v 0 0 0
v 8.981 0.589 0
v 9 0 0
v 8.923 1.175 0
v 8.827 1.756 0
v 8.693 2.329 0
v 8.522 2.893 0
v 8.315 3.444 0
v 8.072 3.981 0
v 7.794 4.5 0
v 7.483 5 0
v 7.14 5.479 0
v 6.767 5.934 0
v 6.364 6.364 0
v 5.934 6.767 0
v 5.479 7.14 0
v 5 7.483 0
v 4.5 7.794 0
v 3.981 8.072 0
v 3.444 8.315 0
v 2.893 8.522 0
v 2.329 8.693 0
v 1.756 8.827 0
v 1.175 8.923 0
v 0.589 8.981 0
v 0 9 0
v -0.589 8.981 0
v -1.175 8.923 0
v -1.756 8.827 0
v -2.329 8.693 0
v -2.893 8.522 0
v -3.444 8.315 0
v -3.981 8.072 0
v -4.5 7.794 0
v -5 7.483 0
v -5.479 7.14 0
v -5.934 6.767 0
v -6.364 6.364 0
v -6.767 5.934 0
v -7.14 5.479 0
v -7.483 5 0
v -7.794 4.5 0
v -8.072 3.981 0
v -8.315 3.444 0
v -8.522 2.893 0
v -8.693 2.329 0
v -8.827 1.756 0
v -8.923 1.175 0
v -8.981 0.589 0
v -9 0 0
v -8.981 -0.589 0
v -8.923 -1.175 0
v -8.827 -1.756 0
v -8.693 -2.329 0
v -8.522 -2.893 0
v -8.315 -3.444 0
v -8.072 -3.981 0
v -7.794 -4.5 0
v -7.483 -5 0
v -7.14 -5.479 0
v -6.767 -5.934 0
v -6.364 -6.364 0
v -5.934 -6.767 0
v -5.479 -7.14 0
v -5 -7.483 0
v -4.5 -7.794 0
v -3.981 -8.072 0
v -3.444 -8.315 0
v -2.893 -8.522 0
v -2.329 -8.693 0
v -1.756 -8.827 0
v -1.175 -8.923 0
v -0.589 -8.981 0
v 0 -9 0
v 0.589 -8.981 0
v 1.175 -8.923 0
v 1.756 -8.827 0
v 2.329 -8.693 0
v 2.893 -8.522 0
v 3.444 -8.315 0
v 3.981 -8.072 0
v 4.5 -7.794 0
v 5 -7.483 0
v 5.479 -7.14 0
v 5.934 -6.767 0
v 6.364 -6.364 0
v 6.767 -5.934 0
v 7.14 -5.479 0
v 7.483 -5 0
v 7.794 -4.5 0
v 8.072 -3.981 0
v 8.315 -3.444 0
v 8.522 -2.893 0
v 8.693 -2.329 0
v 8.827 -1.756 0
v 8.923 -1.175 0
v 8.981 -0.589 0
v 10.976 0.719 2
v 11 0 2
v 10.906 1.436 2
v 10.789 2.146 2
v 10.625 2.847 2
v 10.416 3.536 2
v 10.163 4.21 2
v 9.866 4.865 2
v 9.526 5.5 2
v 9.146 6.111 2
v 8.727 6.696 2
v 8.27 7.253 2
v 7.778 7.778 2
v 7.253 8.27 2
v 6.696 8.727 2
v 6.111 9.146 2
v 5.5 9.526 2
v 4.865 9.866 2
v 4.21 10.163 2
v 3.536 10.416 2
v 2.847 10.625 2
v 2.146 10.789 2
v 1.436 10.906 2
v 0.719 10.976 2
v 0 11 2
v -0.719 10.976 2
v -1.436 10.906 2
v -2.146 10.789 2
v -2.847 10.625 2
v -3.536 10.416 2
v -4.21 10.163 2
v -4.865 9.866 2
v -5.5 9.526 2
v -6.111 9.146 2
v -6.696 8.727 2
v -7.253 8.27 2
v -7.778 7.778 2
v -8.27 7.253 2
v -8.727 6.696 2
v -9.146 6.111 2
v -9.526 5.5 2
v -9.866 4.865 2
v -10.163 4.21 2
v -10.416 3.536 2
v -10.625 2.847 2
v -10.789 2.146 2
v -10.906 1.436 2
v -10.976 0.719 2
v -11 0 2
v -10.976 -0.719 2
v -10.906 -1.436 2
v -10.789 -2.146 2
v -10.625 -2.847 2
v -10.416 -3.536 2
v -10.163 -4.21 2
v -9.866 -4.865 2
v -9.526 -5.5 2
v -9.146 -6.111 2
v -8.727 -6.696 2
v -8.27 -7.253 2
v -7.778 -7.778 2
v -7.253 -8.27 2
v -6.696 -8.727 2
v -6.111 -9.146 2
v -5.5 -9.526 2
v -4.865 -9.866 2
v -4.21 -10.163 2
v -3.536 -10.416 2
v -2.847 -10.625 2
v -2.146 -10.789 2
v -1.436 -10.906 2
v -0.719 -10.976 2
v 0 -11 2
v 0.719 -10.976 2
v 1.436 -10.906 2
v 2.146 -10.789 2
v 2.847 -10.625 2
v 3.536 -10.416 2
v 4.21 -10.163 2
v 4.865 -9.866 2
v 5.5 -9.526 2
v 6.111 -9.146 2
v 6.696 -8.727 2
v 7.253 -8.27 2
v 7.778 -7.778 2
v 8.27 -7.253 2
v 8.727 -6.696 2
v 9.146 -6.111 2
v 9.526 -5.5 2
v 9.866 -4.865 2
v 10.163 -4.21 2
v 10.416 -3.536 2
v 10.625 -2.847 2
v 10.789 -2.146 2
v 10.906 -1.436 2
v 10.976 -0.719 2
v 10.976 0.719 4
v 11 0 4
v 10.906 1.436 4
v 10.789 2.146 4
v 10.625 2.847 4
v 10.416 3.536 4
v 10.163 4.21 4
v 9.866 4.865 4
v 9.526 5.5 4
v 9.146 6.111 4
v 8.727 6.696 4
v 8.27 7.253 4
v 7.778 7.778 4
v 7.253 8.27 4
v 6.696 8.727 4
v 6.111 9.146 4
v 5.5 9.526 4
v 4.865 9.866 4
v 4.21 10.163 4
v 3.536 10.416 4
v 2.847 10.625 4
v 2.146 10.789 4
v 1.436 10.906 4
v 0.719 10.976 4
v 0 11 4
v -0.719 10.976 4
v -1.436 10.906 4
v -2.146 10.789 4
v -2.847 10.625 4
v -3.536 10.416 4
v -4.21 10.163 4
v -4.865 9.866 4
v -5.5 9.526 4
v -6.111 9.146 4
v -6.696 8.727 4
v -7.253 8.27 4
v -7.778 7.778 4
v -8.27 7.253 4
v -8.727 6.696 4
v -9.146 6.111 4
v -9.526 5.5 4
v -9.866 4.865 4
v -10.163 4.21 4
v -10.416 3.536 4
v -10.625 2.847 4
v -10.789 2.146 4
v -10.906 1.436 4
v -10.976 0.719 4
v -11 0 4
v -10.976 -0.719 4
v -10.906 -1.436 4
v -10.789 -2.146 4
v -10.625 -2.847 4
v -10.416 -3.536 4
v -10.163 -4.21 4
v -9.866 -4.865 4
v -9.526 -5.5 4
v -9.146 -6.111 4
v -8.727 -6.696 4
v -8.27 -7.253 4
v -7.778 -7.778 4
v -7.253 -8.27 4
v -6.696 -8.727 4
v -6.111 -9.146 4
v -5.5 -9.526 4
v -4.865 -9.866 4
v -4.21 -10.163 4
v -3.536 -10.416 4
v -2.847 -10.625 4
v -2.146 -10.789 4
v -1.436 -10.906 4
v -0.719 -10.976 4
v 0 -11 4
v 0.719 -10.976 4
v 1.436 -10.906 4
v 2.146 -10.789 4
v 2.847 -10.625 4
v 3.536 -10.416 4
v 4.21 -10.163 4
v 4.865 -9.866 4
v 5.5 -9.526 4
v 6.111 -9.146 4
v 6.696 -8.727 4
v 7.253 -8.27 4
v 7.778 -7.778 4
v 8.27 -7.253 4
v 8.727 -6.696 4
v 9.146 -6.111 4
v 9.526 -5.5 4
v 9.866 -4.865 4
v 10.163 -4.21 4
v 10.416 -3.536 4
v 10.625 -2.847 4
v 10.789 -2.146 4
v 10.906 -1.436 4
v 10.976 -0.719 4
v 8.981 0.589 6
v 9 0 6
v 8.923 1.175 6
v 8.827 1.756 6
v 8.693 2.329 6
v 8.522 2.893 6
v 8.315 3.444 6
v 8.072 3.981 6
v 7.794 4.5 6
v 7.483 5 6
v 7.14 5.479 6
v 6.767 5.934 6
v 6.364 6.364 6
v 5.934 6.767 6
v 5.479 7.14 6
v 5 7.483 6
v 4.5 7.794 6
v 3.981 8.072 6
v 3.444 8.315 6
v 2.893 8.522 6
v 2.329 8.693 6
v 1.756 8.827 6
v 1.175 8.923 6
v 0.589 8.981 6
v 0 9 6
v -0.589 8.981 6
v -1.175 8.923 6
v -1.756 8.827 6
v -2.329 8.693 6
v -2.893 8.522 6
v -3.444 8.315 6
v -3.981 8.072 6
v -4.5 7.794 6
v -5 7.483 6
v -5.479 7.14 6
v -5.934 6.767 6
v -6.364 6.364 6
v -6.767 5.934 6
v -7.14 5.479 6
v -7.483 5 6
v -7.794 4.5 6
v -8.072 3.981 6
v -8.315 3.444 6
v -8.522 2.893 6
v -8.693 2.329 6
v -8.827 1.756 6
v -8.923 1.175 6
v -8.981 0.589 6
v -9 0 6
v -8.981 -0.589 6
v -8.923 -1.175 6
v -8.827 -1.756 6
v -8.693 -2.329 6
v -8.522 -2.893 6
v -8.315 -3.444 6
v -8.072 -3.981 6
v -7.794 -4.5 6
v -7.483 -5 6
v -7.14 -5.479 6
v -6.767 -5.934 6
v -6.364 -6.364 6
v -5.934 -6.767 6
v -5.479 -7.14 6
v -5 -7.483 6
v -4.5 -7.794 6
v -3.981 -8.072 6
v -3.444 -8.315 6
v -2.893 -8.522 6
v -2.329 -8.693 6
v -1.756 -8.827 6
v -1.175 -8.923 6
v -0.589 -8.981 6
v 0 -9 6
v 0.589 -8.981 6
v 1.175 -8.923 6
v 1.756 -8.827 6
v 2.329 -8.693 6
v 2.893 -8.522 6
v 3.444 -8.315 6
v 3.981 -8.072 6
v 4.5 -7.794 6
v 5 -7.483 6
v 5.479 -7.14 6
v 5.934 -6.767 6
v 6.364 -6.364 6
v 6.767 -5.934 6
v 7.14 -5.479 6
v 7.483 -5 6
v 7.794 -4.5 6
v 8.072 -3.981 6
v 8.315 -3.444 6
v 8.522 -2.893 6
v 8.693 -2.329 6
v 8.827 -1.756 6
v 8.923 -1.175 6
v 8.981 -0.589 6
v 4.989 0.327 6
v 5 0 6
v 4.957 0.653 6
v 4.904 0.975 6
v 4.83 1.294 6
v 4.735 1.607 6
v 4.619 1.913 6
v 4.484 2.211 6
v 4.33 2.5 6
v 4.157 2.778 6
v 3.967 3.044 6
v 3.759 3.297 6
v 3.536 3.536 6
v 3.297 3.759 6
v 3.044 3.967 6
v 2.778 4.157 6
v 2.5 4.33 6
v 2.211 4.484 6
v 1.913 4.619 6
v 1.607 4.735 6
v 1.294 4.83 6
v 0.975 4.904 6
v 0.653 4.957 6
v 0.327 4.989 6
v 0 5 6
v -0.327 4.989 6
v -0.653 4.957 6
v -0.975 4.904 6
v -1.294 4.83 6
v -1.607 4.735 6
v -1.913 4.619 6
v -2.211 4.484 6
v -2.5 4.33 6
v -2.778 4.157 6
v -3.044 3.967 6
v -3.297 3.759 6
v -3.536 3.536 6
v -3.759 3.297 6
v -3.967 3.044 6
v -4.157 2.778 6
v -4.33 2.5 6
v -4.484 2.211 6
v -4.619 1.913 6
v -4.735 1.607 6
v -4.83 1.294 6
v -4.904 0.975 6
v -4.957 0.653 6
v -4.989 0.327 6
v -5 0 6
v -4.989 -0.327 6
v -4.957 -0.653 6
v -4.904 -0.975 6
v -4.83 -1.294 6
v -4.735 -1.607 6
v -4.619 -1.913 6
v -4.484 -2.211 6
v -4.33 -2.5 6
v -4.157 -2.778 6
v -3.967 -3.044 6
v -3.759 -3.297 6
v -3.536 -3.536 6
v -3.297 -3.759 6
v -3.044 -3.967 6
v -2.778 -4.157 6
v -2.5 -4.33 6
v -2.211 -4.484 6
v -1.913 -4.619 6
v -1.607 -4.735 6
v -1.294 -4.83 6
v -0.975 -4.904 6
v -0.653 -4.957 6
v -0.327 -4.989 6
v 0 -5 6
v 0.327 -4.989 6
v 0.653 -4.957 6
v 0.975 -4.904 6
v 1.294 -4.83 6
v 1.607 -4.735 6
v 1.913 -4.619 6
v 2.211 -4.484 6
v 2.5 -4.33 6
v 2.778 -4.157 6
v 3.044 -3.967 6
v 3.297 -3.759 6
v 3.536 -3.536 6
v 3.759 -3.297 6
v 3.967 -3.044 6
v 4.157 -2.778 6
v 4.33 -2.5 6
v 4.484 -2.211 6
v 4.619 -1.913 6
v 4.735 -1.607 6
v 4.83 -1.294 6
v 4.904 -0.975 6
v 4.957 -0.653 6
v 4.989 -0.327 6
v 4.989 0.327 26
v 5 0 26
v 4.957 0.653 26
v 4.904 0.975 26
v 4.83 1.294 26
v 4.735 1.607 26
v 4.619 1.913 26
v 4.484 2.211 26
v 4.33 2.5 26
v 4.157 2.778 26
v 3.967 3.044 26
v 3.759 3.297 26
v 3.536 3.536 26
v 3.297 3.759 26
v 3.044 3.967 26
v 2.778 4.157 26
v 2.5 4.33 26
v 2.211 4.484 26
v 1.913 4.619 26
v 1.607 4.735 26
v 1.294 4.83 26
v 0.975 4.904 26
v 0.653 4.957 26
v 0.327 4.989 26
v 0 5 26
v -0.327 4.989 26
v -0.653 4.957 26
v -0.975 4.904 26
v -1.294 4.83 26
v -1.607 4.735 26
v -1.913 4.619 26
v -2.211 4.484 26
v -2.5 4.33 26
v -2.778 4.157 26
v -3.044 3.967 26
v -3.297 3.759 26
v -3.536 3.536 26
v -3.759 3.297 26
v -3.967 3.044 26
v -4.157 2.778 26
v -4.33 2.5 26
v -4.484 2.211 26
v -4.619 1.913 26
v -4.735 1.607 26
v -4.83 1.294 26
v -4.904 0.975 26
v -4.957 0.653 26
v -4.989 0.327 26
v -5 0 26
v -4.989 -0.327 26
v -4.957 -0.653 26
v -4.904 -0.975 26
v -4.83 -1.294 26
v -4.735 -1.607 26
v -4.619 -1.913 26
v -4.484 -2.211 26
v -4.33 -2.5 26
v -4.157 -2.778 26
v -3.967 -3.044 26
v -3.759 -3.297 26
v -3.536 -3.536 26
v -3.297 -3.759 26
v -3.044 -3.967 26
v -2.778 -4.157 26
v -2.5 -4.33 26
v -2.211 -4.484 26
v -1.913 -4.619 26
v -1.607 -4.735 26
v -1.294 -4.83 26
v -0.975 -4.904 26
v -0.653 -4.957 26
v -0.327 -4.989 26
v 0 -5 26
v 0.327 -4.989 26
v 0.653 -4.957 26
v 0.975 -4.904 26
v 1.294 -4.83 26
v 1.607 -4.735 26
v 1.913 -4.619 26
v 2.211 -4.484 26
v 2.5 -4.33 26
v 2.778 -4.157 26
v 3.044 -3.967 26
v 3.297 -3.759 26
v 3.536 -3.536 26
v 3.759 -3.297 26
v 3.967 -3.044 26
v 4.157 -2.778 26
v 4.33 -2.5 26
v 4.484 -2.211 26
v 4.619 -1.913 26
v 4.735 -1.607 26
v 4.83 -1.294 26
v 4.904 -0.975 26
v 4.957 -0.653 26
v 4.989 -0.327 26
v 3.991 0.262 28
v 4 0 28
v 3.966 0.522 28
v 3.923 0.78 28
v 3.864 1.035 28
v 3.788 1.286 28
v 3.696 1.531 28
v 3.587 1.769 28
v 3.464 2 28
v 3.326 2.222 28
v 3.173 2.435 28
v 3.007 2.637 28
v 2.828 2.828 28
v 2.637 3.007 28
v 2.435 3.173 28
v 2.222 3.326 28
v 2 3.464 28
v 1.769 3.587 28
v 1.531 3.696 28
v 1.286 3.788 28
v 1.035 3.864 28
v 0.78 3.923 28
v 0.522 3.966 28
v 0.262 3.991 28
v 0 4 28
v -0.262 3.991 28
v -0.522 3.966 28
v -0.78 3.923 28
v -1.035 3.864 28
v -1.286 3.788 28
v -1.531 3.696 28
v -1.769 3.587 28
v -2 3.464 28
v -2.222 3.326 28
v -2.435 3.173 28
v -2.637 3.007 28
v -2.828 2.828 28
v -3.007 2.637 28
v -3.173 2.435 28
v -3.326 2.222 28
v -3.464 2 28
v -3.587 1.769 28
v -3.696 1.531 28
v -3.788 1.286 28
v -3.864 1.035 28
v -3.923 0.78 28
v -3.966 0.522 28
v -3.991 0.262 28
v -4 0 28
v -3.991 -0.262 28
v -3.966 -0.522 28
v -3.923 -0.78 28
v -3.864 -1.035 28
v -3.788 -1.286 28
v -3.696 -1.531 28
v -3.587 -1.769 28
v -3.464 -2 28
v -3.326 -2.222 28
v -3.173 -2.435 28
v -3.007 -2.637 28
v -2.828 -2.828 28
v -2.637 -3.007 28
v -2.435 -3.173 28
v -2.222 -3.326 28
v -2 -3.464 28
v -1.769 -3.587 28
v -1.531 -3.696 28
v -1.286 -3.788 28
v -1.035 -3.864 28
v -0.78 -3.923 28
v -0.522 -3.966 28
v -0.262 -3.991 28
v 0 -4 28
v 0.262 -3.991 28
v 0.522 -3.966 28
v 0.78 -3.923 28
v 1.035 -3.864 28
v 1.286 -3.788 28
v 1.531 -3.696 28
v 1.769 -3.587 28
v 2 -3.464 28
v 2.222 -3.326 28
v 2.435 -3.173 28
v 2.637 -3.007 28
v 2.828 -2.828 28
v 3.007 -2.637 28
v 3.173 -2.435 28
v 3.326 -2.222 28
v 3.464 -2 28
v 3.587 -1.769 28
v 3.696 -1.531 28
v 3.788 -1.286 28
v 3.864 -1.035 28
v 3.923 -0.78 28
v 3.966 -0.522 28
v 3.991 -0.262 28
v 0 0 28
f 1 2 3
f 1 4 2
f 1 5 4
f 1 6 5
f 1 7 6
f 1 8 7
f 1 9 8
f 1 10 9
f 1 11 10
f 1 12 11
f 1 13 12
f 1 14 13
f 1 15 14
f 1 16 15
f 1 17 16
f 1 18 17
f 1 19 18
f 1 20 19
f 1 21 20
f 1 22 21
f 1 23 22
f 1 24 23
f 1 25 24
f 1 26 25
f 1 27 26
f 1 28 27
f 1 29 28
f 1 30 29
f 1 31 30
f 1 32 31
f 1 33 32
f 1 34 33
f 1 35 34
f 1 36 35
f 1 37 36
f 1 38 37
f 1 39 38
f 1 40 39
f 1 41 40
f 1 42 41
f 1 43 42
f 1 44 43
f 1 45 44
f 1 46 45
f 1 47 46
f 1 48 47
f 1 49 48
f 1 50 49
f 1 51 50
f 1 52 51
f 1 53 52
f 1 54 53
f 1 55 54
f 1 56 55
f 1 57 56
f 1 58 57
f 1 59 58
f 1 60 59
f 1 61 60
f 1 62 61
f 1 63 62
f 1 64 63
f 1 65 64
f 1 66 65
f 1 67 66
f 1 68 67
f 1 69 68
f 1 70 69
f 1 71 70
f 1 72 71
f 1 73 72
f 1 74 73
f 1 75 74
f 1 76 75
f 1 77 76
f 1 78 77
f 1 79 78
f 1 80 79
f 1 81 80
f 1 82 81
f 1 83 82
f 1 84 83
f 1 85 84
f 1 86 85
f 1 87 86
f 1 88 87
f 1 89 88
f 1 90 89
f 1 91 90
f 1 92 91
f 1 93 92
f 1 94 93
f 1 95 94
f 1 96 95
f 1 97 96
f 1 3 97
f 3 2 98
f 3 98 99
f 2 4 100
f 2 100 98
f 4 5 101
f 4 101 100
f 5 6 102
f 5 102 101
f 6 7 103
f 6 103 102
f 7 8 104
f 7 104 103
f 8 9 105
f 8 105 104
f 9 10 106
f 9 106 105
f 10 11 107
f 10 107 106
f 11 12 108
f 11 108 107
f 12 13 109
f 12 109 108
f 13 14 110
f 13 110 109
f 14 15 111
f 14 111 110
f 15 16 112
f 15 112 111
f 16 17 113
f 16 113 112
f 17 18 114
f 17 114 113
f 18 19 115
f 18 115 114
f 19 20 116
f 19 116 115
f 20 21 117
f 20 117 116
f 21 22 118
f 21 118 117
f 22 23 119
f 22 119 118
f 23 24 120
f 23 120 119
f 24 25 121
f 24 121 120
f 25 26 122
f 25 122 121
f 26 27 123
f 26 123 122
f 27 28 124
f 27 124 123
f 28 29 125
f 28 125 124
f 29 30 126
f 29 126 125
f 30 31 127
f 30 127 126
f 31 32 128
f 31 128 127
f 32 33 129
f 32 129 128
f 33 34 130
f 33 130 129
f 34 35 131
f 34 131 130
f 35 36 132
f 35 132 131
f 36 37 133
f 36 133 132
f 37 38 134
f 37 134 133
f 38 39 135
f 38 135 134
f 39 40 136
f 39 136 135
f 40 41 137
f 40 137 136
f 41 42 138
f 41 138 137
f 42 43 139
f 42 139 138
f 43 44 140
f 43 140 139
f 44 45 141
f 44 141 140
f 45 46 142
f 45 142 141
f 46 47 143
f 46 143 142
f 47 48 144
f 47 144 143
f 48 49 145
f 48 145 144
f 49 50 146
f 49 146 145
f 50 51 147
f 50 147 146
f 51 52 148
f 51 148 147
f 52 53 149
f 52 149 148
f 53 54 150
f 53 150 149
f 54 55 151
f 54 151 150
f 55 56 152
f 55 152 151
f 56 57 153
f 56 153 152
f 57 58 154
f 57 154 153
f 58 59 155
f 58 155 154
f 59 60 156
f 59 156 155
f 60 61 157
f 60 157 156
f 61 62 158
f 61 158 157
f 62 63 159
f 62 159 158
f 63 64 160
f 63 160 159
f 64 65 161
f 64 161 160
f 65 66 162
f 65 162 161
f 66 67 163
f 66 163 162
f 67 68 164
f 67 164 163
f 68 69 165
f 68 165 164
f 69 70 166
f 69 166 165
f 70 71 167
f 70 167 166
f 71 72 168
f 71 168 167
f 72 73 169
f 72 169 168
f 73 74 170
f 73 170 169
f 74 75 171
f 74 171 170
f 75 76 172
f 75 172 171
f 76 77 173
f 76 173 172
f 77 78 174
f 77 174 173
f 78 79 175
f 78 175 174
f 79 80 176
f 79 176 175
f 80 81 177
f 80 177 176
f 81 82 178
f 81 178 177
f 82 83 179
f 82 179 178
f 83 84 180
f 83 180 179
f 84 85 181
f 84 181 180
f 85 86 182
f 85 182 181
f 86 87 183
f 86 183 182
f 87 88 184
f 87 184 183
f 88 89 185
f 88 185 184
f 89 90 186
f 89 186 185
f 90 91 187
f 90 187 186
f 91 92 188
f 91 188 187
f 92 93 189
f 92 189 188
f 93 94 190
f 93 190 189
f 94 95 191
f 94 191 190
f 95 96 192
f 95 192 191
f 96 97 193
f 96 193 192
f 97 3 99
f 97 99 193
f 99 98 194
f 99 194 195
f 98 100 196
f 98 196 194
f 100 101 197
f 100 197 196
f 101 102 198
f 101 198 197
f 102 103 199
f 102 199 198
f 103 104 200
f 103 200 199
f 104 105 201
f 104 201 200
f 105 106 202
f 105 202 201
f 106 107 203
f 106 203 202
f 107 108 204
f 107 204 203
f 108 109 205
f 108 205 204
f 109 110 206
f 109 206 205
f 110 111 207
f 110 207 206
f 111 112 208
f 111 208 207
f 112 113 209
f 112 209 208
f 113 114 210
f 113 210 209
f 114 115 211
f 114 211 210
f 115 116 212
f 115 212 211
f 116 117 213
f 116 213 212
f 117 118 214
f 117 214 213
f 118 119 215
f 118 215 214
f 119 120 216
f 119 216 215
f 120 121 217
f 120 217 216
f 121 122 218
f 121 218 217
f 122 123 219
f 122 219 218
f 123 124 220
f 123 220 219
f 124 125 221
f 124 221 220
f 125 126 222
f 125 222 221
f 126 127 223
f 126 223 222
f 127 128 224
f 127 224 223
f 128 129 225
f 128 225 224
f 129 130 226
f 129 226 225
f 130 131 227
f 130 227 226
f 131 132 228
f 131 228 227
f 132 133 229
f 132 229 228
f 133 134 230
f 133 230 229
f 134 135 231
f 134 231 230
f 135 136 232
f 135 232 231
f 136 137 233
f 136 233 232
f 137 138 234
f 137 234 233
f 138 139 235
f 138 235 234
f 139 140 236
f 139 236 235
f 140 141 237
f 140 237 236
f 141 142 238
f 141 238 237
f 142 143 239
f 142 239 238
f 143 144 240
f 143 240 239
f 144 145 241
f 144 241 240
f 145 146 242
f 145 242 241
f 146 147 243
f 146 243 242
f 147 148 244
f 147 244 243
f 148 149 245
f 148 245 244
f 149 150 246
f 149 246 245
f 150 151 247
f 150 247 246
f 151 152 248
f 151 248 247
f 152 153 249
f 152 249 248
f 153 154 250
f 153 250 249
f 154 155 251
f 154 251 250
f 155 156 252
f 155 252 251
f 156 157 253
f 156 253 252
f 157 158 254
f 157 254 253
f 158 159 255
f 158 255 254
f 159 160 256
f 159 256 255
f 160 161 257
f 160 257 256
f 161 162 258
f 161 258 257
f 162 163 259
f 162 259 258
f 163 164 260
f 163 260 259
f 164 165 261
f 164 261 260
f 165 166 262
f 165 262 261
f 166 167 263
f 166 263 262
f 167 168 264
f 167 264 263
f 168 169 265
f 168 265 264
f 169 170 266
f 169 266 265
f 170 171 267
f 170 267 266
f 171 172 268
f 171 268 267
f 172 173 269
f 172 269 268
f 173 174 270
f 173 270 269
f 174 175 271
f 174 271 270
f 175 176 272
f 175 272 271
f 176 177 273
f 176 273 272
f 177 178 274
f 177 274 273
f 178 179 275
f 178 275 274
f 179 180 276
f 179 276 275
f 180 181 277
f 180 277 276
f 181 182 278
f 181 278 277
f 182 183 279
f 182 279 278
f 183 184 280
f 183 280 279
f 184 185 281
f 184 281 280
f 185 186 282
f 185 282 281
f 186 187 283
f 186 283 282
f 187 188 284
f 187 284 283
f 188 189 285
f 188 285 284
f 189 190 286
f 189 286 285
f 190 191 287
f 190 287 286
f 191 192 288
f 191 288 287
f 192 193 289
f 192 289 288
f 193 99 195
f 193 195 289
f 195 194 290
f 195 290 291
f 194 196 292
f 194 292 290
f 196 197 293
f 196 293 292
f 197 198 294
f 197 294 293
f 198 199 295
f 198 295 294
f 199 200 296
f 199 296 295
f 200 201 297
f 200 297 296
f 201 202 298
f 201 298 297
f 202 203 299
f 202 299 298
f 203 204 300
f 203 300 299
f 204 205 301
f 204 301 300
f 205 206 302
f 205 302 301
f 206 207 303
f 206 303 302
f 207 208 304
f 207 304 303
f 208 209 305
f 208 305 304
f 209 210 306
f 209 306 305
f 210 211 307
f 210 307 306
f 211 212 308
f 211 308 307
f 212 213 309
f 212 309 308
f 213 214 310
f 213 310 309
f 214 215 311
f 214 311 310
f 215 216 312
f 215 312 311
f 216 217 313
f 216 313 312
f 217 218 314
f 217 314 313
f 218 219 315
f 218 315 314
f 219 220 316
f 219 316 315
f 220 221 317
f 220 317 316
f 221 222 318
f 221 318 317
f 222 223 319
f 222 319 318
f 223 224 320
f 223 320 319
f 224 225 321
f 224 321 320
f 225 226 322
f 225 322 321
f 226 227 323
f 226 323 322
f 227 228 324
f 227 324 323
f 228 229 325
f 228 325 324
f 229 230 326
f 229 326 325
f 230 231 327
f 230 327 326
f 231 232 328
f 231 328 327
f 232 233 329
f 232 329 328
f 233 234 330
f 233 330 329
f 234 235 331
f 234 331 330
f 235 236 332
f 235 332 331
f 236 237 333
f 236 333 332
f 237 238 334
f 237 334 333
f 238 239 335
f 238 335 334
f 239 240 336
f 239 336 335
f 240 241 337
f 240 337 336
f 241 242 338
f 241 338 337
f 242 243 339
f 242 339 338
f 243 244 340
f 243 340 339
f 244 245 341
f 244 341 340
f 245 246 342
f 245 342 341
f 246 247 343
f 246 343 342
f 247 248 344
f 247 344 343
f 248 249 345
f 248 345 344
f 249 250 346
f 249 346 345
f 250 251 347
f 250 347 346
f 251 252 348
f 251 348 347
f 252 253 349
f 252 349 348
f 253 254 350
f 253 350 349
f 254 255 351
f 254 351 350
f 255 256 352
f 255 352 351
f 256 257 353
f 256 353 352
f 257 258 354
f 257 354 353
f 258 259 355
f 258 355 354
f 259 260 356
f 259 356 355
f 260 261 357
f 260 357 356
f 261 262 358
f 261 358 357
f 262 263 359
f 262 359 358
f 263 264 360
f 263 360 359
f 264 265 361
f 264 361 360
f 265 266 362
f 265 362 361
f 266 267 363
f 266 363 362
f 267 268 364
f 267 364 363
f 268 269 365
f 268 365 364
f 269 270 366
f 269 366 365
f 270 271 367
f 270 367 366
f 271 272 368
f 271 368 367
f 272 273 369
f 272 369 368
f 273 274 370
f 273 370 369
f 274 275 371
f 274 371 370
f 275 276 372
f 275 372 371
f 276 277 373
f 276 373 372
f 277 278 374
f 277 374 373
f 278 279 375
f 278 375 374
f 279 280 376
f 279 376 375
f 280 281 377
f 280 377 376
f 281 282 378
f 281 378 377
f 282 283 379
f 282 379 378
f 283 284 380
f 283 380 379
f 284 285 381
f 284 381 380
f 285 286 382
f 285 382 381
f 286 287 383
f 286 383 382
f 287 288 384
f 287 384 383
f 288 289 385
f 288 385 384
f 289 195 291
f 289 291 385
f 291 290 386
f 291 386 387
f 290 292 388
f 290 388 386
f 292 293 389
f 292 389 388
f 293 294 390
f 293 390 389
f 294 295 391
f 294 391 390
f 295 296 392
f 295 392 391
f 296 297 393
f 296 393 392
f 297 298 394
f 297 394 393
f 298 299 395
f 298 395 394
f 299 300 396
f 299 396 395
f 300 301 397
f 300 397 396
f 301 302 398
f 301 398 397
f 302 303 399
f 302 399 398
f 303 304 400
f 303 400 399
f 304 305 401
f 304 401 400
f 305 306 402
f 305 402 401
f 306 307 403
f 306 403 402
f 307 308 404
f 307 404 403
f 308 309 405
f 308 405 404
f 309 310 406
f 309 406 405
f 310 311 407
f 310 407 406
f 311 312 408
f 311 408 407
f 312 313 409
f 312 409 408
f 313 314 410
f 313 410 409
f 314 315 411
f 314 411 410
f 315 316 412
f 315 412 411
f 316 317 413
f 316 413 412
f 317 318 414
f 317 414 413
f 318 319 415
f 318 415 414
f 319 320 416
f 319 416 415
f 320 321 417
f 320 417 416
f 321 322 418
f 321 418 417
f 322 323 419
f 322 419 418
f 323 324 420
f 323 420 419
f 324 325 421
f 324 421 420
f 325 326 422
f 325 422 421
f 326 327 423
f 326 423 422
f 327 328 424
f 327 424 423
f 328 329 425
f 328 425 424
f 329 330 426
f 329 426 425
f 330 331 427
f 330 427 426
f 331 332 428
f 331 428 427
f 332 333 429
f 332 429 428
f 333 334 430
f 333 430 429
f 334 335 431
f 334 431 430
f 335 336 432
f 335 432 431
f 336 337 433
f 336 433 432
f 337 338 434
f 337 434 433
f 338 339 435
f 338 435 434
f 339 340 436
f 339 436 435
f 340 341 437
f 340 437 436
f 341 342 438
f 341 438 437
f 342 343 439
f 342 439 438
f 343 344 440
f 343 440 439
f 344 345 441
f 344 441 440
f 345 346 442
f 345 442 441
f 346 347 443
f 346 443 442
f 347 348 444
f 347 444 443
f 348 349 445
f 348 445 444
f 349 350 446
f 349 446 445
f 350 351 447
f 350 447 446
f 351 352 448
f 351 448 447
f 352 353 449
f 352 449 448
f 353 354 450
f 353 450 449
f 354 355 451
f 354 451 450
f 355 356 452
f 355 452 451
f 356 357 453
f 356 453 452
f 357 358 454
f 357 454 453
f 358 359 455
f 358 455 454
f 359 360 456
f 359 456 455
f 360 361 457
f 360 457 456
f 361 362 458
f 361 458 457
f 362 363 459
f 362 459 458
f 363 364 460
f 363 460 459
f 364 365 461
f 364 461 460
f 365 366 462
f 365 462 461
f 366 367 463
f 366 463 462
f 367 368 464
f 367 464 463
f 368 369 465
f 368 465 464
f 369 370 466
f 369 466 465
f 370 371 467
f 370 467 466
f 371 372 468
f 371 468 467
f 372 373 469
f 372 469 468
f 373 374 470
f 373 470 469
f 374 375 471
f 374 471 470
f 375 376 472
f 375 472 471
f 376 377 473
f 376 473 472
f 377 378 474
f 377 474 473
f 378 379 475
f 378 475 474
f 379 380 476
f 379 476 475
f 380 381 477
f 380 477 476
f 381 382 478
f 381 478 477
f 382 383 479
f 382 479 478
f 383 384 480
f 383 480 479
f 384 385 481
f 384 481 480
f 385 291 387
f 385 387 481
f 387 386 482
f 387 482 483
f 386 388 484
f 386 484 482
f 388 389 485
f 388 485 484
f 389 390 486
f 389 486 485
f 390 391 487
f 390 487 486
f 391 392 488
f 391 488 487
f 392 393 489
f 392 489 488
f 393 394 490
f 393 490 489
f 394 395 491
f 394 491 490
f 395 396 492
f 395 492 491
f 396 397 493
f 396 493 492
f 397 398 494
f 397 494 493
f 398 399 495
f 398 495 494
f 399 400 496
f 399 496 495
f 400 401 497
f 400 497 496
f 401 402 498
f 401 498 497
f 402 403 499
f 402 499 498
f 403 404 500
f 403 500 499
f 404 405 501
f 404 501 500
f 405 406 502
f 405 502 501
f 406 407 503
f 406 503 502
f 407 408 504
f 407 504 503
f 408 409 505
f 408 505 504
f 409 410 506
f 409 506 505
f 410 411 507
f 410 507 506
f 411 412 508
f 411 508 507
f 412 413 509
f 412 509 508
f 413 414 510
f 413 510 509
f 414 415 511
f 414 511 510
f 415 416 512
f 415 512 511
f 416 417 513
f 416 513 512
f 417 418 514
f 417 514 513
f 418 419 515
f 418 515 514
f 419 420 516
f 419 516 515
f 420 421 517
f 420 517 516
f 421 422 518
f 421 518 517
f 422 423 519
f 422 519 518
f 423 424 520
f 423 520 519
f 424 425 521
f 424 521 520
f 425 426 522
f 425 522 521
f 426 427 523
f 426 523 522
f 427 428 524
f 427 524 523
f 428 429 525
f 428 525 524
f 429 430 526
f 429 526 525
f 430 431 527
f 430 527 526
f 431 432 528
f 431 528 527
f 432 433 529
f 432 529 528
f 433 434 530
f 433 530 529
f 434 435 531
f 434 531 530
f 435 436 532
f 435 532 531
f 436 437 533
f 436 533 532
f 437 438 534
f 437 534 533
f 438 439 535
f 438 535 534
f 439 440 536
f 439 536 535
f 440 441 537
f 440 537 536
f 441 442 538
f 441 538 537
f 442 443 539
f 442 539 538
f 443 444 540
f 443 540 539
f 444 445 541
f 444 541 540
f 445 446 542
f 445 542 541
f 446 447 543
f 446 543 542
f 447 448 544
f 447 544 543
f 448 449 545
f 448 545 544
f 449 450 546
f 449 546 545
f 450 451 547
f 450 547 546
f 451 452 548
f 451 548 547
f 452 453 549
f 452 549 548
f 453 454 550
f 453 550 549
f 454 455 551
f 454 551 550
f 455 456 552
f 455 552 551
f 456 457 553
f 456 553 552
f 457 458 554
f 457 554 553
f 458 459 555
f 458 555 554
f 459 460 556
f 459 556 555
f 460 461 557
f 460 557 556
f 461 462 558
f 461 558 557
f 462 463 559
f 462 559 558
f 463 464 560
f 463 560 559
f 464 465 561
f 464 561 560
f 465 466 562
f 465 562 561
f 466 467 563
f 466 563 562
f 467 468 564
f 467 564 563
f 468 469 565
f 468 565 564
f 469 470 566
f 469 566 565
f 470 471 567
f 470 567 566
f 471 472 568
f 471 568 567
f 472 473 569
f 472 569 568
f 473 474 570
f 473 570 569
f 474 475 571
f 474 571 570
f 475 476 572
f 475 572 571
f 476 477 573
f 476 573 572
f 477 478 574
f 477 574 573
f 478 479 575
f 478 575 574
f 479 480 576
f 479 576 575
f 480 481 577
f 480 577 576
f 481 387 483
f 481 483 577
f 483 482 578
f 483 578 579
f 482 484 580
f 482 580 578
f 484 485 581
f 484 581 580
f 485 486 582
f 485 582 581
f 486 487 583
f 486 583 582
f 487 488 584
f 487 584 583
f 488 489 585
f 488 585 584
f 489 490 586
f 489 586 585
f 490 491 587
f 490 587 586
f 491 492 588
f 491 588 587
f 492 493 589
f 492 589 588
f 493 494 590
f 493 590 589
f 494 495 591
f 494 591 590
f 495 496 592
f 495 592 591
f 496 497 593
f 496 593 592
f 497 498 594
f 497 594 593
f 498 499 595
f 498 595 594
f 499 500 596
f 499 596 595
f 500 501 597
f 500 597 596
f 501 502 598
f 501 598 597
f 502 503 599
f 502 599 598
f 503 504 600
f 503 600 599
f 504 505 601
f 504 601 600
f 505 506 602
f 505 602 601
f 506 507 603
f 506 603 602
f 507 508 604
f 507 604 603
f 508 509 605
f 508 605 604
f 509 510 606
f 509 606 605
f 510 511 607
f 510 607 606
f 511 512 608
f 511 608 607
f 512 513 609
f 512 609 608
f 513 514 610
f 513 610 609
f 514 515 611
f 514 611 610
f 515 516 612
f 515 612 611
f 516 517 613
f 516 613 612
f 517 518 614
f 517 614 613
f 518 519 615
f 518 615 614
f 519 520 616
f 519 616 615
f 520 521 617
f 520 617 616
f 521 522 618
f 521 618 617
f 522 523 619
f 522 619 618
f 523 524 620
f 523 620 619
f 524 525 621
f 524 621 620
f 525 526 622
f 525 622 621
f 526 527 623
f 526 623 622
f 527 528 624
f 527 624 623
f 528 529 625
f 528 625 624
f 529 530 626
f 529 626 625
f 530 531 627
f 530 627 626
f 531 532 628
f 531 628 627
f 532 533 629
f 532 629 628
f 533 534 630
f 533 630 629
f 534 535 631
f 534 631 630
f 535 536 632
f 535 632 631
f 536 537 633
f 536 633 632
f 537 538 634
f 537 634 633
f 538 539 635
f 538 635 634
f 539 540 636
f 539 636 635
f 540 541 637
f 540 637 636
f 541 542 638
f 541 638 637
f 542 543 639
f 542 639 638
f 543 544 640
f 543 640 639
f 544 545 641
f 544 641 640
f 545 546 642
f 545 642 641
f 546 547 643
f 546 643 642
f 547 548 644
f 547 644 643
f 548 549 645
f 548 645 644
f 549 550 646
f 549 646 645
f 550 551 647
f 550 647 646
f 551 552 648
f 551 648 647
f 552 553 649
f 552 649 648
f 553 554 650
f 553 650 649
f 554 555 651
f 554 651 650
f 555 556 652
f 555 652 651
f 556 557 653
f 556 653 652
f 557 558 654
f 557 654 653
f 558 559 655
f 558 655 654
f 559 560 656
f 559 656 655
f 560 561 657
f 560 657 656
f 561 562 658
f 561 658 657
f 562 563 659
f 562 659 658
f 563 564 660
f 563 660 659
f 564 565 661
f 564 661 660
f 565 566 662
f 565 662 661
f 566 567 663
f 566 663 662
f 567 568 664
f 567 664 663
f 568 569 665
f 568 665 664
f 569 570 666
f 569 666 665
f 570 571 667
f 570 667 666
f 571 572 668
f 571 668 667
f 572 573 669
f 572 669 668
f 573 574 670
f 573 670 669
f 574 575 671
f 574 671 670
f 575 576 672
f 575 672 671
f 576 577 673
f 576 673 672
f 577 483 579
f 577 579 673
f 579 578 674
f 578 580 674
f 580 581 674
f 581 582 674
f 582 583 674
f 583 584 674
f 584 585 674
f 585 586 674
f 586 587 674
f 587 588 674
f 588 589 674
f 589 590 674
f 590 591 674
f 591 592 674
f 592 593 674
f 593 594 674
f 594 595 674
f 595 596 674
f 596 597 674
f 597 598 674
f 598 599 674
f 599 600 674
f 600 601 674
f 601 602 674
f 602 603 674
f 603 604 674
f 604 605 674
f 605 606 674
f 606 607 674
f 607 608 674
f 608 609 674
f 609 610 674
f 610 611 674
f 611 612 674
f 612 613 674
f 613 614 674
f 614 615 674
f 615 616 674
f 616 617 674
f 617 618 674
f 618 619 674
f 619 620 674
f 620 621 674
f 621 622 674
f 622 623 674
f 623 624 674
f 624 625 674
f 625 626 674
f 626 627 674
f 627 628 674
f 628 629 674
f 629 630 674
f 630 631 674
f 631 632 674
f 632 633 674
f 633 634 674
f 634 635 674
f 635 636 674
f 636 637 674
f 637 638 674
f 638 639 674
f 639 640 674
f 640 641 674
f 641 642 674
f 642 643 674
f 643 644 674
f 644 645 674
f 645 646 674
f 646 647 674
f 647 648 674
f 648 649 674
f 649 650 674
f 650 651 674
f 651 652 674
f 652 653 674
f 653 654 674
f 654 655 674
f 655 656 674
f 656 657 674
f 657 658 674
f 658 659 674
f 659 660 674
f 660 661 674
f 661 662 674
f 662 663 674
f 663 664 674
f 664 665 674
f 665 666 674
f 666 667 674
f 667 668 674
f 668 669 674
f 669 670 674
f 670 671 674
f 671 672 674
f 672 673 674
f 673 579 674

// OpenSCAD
// Original MechIntel educational model. CC0-1.0. Units: mm.
// Not a standardized or load-rated component.
$fn=96;
// Section points: [radius, height], mm. Edit to change the profile.
section=[[0, 0], [9, 0], [11, 2], [11, 4], [9, 6], [5, 6], [5, 26], [4, 28], [0, 28]];
rotate_extrude($fn=96) polygon(points=section);
